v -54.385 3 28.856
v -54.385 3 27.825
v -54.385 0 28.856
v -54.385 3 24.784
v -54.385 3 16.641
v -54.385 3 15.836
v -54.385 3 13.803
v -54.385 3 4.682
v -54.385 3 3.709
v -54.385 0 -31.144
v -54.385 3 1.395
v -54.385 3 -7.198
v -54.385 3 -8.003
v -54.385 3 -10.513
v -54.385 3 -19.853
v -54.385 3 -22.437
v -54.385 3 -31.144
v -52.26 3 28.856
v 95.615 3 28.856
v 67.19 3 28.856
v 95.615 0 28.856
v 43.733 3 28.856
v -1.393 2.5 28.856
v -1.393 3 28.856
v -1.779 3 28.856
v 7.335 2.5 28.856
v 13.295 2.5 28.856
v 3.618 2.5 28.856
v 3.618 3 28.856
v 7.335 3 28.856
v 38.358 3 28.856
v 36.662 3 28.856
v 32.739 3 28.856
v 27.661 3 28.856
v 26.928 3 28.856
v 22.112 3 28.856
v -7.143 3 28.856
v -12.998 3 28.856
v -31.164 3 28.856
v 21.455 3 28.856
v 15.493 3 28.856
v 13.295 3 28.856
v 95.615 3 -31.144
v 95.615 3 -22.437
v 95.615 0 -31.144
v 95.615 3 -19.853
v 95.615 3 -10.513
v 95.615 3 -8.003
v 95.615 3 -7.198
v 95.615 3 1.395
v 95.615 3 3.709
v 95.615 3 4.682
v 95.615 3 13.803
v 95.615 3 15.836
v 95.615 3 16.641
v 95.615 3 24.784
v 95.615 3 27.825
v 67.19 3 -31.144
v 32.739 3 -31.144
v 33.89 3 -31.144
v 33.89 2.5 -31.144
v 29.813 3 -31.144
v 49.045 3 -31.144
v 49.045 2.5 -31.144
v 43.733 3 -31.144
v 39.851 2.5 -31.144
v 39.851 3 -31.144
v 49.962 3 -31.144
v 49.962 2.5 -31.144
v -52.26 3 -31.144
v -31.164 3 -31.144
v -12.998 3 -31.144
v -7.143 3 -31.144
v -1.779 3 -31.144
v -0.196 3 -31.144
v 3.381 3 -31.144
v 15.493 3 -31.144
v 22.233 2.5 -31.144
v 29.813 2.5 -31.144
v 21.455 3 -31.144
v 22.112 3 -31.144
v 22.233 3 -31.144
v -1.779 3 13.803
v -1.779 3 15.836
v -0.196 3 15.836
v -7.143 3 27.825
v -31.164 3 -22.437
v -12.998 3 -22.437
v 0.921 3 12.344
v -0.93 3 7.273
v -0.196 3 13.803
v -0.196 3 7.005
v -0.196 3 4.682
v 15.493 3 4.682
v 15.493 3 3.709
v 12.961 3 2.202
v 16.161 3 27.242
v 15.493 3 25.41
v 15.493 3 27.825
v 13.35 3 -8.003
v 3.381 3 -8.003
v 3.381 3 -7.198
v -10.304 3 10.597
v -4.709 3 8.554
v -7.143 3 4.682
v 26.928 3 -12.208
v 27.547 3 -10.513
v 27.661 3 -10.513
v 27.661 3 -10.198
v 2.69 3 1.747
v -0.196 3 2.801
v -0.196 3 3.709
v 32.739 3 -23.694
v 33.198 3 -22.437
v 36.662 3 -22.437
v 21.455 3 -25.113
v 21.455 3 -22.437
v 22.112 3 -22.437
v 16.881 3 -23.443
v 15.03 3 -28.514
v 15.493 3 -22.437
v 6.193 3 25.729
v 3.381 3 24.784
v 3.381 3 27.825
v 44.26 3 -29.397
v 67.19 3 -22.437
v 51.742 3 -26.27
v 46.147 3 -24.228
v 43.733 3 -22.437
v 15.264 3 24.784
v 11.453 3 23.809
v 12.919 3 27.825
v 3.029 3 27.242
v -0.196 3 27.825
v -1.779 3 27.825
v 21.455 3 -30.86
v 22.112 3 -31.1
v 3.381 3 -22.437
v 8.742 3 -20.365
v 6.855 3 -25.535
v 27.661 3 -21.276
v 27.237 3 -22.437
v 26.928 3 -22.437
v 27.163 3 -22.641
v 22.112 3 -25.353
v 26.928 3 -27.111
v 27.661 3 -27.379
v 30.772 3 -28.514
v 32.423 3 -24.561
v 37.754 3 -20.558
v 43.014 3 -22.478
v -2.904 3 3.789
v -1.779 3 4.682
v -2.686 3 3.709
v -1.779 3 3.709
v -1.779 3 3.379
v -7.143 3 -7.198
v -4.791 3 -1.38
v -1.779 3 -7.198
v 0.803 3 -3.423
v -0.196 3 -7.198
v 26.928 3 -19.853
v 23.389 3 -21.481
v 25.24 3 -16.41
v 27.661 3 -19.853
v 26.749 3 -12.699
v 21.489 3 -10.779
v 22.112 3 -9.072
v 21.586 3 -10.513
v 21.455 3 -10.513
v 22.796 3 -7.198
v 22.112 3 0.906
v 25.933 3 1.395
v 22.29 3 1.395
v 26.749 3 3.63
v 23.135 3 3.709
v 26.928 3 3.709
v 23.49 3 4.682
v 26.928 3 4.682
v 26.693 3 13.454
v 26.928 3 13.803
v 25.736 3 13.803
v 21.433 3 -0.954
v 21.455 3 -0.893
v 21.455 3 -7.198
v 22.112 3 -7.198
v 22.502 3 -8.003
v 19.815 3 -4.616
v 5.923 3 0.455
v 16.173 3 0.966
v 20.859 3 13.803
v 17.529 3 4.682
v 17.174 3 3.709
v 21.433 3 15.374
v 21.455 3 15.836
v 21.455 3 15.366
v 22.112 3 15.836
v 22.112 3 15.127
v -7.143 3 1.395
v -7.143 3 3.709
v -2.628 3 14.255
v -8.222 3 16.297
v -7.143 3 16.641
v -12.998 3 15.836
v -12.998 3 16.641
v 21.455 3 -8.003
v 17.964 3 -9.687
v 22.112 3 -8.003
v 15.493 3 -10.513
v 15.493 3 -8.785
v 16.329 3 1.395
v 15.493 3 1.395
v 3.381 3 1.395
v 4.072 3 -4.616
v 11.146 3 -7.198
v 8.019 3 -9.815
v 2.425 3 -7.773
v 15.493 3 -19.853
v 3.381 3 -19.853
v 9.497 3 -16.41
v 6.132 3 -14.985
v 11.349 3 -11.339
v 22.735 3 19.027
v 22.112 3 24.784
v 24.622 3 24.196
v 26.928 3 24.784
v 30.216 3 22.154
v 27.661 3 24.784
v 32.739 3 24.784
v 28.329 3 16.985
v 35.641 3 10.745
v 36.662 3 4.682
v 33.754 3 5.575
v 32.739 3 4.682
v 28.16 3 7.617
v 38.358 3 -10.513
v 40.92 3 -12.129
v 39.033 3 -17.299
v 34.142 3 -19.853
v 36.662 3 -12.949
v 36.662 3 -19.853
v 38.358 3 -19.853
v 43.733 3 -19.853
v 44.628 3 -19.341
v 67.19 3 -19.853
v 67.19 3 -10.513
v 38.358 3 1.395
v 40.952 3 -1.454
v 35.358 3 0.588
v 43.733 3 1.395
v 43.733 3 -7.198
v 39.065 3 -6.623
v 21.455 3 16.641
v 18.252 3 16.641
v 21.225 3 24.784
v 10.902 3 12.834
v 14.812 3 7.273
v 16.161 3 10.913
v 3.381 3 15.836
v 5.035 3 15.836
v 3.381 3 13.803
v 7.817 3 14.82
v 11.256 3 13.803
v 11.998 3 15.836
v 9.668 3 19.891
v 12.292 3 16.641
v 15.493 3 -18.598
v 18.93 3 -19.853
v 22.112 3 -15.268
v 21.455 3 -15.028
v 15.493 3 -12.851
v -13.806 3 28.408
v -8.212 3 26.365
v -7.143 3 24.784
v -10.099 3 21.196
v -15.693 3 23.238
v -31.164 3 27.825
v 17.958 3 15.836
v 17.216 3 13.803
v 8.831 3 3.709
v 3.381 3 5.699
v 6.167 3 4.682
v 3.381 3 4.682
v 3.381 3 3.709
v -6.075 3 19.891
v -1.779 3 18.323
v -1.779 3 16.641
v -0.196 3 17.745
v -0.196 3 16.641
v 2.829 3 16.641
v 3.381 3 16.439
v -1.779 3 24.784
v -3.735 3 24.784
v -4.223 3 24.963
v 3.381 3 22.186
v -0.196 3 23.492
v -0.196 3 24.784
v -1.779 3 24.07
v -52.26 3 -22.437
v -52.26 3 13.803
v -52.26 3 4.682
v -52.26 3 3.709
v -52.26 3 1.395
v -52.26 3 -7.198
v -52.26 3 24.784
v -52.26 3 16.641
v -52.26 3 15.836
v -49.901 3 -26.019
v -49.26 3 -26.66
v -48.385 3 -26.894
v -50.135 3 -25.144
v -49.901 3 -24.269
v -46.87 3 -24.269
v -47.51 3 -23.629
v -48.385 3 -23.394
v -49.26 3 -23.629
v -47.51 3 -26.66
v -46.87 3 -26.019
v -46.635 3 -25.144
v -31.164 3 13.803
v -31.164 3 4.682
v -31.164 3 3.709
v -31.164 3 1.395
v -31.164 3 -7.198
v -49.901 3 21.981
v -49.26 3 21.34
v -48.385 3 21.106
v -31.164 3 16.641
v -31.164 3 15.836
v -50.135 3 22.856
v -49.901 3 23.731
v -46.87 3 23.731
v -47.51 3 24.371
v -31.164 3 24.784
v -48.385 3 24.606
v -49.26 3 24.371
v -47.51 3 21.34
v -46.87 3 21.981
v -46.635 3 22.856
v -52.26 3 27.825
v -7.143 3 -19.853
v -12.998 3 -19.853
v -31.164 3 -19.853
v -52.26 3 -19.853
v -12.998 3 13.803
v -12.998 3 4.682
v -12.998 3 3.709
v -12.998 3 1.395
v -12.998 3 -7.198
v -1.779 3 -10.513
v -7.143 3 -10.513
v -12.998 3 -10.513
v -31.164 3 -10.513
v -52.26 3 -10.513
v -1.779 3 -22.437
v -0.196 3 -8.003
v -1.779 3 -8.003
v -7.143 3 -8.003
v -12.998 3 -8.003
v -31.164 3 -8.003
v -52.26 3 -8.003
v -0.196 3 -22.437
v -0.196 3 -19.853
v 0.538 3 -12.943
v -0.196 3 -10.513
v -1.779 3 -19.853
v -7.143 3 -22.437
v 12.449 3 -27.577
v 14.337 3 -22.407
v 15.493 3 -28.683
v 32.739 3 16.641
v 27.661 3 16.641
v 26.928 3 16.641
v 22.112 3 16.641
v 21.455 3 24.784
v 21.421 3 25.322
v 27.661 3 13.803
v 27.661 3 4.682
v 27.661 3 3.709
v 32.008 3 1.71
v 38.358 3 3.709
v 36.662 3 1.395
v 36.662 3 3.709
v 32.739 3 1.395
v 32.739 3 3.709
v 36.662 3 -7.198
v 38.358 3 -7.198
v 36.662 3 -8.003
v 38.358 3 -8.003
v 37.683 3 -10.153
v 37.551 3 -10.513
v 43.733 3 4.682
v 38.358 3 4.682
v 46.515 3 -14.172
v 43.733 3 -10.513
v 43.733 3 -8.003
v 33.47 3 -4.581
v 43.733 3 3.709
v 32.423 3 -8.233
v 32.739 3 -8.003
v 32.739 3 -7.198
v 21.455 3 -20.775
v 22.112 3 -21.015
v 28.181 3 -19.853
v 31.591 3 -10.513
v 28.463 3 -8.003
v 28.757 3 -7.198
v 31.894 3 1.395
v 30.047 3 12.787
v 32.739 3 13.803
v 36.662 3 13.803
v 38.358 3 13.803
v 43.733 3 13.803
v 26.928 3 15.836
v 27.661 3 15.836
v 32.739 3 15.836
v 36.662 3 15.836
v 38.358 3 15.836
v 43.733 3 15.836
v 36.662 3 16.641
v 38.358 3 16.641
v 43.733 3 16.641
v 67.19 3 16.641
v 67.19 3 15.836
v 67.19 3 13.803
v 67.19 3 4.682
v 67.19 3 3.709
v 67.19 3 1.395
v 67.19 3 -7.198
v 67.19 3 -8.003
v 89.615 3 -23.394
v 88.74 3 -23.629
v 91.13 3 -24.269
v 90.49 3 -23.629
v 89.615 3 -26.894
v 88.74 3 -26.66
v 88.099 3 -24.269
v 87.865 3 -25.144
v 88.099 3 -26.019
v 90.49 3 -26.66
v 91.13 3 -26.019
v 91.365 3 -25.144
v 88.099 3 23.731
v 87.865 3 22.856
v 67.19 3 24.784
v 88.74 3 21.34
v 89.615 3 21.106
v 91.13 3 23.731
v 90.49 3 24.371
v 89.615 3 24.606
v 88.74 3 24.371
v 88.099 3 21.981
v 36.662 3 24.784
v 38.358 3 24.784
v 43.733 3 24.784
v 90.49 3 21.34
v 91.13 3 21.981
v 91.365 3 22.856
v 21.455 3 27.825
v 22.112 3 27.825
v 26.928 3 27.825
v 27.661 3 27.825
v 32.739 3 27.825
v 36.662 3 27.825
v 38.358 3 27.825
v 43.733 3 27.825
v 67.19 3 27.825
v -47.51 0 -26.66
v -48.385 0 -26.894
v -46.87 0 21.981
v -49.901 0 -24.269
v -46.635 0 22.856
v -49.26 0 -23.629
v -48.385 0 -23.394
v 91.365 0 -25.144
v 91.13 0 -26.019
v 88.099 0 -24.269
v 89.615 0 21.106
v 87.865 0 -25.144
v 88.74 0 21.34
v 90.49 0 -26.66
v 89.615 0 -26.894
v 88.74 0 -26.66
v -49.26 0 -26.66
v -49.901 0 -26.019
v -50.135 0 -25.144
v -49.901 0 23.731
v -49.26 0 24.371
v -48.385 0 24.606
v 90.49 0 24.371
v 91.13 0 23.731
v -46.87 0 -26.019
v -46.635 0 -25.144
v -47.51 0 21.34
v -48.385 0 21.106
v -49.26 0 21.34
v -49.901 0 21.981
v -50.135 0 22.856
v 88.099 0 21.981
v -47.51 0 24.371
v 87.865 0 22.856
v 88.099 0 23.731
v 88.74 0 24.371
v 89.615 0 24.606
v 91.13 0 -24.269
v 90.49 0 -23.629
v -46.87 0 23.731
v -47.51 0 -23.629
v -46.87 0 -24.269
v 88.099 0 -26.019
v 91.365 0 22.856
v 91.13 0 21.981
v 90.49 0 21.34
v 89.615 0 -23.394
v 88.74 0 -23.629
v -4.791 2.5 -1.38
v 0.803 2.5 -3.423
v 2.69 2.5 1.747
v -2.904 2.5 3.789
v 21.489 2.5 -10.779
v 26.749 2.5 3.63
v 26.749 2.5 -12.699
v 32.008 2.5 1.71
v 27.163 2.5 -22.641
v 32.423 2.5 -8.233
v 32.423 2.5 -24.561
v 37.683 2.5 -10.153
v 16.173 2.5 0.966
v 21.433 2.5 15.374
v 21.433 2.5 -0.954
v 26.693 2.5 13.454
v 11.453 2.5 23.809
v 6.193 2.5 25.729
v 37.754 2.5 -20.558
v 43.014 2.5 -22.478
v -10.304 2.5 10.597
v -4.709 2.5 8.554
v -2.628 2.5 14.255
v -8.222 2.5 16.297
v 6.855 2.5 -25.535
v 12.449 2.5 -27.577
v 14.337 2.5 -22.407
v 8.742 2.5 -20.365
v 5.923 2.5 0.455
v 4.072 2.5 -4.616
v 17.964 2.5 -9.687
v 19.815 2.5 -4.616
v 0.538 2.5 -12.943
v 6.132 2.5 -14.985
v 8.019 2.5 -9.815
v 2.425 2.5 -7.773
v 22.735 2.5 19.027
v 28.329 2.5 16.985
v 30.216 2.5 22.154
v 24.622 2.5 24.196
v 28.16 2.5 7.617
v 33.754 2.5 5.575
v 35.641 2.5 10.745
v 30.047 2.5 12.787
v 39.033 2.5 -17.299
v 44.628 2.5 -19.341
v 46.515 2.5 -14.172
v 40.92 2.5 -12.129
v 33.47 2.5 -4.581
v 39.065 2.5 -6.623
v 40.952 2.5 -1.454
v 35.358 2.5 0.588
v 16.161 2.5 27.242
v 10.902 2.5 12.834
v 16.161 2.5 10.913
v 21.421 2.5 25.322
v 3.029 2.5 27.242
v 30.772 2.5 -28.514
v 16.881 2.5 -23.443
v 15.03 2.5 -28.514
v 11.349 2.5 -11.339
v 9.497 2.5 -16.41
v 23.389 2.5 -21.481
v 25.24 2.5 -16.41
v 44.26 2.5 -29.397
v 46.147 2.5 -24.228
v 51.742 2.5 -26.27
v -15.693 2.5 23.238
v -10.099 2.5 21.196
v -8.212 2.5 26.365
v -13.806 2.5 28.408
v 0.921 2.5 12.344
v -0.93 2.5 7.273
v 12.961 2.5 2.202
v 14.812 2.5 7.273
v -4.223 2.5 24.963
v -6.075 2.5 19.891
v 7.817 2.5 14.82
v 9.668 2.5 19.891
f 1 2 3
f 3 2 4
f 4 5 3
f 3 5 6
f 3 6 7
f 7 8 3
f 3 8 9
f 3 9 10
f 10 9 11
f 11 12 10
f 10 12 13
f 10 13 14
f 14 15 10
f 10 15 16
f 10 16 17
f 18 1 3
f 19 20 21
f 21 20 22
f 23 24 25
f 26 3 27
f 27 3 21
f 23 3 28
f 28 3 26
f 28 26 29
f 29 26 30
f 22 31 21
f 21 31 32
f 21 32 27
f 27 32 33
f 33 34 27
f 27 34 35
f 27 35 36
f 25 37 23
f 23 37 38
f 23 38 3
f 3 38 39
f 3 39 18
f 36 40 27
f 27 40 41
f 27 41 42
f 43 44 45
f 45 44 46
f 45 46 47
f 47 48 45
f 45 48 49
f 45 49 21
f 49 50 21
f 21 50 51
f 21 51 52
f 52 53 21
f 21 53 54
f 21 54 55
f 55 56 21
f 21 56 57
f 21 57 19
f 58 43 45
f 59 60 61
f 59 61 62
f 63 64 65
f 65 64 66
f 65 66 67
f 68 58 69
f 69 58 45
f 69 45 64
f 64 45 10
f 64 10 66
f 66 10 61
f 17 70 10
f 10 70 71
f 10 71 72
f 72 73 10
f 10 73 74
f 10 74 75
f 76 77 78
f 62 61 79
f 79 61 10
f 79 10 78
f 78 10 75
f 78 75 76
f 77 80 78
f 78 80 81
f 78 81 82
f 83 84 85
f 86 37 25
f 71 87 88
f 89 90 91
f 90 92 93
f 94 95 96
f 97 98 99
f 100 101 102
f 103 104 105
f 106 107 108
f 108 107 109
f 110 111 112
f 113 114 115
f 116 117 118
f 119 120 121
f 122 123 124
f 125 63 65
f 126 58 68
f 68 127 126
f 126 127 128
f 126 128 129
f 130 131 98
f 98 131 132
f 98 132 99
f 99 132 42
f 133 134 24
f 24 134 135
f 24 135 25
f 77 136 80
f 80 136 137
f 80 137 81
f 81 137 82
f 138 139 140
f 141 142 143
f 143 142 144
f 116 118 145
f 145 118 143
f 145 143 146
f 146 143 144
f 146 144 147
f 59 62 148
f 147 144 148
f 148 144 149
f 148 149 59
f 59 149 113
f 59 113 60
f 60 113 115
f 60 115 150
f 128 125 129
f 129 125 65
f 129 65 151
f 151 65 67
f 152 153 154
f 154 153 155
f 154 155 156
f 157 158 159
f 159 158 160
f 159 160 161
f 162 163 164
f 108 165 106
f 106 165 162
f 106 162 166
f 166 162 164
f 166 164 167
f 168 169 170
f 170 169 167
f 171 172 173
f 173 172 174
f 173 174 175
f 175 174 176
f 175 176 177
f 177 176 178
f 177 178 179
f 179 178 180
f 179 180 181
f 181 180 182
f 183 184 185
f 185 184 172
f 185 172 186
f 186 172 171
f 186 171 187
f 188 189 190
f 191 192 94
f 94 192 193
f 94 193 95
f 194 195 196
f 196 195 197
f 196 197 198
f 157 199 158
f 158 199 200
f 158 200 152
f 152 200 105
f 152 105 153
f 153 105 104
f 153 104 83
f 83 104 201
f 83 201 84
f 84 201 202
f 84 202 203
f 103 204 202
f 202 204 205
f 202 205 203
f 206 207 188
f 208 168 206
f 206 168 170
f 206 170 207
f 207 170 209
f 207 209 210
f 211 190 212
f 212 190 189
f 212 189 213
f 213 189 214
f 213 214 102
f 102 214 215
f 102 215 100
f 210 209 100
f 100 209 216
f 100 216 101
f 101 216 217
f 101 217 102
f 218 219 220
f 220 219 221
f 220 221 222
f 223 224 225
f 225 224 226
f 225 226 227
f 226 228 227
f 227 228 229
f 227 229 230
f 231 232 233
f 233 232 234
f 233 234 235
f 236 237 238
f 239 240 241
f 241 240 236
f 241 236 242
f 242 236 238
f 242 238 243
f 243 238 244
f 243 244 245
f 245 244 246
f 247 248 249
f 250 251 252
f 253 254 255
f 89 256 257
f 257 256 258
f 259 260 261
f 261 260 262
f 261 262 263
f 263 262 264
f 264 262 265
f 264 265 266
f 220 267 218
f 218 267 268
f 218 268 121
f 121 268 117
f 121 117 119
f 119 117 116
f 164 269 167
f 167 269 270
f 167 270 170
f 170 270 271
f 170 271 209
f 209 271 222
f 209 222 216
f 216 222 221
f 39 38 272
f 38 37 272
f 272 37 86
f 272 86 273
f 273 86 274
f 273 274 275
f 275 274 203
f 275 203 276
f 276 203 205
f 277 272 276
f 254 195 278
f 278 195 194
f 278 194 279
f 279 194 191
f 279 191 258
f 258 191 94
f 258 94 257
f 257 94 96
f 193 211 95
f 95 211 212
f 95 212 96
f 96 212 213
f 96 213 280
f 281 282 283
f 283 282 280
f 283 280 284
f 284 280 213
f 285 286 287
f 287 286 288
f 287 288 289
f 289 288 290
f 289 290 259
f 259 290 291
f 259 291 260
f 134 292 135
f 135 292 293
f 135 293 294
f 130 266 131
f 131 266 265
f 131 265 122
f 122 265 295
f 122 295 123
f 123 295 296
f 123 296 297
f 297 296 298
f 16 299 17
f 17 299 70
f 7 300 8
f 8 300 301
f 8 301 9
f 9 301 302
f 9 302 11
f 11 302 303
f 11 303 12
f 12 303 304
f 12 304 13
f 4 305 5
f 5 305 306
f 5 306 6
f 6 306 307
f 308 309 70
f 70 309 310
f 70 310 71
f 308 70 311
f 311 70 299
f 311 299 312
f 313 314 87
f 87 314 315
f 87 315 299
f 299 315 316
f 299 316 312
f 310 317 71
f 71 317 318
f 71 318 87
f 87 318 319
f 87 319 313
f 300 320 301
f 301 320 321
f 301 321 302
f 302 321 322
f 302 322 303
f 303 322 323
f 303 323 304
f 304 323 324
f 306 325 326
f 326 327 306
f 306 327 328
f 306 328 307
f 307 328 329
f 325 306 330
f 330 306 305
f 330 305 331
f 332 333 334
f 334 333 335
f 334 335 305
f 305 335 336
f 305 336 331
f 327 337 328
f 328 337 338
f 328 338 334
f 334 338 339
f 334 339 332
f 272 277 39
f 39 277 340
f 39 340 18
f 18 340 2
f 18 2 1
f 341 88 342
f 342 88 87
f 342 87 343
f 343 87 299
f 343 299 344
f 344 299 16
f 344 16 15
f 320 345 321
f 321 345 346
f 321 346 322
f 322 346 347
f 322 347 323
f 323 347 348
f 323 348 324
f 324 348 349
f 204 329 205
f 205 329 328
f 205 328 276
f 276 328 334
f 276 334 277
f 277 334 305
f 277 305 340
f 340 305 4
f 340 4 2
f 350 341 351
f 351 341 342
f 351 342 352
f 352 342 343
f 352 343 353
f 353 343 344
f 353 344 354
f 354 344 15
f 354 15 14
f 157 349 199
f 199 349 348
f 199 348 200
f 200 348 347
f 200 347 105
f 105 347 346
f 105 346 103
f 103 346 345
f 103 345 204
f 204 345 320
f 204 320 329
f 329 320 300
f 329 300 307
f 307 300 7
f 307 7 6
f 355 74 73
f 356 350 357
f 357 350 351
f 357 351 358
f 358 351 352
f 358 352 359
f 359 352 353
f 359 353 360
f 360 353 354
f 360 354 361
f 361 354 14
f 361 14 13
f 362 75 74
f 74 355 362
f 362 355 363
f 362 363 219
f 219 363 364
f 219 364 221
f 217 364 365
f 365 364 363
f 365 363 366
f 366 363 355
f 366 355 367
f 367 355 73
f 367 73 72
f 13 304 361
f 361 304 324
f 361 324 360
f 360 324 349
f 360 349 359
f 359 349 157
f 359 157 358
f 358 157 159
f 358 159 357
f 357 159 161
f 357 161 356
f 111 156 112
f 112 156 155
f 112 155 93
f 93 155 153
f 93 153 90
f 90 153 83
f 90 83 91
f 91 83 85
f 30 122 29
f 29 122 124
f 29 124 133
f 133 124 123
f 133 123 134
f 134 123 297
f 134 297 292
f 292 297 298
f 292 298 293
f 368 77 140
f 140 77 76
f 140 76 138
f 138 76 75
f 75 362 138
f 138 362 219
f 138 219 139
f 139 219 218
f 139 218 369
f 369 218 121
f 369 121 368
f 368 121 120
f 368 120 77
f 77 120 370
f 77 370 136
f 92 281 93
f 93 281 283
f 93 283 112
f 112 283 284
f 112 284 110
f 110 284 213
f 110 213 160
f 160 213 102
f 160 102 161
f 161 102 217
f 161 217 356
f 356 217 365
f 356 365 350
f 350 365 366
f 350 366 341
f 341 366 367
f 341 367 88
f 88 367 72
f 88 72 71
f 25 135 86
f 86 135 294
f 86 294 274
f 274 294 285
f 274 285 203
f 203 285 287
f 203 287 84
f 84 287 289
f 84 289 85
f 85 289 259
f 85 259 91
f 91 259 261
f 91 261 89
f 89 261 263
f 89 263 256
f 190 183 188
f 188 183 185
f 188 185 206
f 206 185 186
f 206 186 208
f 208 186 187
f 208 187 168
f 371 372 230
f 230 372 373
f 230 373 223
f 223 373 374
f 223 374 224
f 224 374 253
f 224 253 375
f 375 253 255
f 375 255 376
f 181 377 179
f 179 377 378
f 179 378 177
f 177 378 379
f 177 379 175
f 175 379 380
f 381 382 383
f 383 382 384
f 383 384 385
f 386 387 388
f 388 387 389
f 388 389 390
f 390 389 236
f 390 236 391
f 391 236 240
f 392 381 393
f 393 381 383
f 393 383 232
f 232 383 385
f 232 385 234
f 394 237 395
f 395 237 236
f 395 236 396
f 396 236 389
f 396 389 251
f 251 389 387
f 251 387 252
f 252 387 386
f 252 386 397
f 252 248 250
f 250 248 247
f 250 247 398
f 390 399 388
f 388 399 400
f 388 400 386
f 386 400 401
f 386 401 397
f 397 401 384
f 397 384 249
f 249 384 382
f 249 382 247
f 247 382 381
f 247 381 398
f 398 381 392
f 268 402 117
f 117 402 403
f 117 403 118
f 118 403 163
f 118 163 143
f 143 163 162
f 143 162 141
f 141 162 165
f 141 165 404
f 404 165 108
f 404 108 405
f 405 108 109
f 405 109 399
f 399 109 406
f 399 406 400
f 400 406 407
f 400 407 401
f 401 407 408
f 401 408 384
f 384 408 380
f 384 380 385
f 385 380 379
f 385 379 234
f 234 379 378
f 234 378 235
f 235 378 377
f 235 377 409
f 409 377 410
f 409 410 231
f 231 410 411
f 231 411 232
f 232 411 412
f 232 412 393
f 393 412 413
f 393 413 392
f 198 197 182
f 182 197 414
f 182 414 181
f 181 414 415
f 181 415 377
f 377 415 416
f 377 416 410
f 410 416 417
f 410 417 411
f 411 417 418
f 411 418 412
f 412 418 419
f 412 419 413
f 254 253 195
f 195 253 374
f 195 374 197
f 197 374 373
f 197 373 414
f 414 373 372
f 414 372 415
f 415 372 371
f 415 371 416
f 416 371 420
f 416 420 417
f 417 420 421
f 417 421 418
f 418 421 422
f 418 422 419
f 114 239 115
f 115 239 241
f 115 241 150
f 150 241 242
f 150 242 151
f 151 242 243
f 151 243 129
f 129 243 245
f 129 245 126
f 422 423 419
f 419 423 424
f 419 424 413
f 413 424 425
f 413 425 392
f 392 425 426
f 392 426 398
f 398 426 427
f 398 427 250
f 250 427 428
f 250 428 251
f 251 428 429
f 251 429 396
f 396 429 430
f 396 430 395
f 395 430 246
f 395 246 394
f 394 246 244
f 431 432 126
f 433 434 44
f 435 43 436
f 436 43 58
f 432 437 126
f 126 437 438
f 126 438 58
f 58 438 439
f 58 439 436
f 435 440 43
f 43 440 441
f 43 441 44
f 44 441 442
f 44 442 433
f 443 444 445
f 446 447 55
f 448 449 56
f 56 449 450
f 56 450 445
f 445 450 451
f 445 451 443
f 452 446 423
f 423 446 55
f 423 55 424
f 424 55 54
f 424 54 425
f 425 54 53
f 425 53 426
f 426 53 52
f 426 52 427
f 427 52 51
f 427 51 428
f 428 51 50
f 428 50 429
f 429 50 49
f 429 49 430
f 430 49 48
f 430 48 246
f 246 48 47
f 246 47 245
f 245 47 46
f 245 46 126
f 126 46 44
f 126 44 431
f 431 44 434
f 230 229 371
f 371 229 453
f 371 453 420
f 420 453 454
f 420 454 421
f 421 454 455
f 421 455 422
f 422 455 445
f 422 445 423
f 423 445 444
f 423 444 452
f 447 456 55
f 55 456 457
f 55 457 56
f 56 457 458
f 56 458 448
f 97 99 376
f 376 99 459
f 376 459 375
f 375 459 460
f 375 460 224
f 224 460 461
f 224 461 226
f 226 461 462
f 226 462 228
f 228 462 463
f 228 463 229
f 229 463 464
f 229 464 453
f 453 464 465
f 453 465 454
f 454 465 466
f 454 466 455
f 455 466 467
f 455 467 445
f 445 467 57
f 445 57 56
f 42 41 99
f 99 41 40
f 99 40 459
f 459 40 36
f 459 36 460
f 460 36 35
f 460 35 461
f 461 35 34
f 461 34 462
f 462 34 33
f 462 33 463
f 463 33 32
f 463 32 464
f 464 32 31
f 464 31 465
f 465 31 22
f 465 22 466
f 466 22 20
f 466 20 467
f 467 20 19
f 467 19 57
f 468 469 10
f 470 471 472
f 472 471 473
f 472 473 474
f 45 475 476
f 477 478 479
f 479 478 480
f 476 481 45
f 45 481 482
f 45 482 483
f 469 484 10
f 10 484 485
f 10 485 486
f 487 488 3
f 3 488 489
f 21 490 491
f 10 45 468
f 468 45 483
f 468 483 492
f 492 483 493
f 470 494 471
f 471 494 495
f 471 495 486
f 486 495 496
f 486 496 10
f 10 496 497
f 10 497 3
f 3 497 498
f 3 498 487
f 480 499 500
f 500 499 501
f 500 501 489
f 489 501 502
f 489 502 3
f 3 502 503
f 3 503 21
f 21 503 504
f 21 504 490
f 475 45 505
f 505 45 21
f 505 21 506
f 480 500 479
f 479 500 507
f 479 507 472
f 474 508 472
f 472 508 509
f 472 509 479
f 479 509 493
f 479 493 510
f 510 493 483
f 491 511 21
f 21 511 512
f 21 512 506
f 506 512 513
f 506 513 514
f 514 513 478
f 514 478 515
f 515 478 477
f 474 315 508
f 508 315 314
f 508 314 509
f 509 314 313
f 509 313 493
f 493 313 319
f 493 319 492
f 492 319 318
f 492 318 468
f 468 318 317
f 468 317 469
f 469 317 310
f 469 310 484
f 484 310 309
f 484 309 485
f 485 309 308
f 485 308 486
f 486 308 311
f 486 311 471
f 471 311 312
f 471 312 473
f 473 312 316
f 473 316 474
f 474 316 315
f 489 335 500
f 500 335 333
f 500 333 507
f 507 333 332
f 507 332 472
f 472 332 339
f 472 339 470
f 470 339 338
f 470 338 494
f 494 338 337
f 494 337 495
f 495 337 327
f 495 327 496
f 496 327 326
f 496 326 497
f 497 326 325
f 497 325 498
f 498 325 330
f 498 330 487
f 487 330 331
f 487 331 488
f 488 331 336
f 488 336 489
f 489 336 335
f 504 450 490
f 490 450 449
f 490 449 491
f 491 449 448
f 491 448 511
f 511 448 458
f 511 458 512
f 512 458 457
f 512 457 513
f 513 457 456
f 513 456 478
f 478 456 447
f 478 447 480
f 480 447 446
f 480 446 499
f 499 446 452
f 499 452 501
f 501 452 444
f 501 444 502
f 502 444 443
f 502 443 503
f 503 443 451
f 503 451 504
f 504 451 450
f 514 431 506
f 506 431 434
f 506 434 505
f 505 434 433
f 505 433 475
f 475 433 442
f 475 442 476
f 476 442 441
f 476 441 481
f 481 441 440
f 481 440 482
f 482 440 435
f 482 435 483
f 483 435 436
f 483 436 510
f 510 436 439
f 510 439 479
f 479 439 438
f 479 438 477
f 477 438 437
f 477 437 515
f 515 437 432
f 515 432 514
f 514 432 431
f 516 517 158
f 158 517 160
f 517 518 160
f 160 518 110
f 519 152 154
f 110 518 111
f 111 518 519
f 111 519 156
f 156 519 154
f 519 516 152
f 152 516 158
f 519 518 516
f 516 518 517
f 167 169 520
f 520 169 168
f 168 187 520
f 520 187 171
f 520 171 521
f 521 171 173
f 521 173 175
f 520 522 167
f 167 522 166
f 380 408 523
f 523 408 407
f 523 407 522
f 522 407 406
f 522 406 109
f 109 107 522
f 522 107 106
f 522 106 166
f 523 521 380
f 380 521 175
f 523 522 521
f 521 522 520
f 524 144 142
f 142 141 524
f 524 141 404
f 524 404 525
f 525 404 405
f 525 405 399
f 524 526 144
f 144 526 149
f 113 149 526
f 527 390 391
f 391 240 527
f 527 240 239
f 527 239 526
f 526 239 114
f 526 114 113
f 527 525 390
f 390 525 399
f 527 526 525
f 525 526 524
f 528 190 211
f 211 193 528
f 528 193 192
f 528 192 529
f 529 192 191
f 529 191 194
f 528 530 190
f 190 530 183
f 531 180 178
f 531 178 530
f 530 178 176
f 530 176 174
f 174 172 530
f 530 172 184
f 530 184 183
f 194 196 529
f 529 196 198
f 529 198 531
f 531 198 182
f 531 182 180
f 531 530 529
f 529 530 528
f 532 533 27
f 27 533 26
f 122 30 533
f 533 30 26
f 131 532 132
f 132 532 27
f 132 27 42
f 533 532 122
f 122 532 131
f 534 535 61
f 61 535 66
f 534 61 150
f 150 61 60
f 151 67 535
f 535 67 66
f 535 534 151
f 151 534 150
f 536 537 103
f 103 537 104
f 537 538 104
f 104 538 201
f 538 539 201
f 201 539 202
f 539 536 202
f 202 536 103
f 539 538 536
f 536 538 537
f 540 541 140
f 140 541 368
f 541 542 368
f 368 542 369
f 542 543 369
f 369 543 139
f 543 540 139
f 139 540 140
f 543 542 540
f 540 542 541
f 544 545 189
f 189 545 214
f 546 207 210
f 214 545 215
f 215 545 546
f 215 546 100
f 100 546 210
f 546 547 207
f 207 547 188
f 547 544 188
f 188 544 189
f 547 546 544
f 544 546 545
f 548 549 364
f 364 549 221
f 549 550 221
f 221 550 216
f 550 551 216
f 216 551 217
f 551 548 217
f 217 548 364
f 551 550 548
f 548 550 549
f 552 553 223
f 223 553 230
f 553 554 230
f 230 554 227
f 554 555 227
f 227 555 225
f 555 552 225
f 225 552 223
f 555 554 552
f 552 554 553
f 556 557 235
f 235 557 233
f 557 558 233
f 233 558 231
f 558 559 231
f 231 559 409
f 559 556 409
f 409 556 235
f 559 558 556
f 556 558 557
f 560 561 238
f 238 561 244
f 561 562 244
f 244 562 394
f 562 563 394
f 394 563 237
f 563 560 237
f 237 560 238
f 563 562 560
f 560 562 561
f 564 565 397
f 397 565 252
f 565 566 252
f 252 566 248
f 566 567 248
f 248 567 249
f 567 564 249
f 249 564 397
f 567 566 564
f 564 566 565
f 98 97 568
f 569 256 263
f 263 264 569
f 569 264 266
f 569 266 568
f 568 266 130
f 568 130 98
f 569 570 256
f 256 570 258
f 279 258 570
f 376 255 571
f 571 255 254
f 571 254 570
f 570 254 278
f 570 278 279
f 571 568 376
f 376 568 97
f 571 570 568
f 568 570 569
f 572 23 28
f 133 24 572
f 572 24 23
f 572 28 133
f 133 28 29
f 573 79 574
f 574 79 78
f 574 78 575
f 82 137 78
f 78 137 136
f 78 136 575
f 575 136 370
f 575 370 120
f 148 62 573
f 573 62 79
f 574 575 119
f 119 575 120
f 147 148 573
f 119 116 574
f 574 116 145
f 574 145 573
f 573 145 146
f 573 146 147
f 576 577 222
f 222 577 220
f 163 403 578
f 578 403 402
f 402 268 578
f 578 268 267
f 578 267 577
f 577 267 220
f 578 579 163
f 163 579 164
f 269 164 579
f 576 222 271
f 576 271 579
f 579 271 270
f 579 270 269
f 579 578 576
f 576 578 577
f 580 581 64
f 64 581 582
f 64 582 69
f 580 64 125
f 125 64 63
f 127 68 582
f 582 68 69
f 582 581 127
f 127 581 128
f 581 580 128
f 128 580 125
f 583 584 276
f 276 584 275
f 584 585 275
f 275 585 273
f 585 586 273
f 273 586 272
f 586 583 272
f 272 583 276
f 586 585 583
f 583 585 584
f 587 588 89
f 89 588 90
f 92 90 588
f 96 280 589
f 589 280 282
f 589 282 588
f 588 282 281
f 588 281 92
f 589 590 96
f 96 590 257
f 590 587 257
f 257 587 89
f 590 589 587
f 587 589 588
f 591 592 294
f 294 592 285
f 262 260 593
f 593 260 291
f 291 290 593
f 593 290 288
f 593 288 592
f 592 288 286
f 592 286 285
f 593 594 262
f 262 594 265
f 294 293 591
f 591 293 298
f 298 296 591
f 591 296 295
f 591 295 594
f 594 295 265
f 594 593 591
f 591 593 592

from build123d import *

# Parameters (mm, degrees)
SKETCH1_W           = 150
SKETCH1_H           = 60
BOSS_EXTRUDE1_DEPTH = 3
CUT_EXTRUDE1_REACH  = 102.604
SKETCH2_R           = 1.75
CUT_EXTRUDE2_DEPTH  = 0.5


with BuildPart() as part:
    # Sketch1 → Boss-Extrude1 (new body)
    with BuildSketch(Plane(origin=(0, 0, 0), x_dir=(1, 0, 0), z_dir=(0, 1, 0))):
        with Locations((20.614523463, 1.144067797)):
            Rectangle(SKETCH1_W, SKETCH1_H)
    extrude(amount=BOSS_EXTRUDE1_DEPTH)

    # Sketch2 → Cut-Extrude1 (cut, up to next)
    with BuildSketch(Plane(origin=(0, 3, 0), x_dir=(1, 0, 0), z_dir=(0, 1, 0)), mode=Mode.PRIVATE) as cut_extrude1_sk1:
        with Locations(Location((-48.385476537, 25.144067797, 0), (0, 0, 270))):
            Circle(SKETCH2_R)
    cut_extrude1_tool1 = extrude(cut_extrude1_sk1.sketch, amount=-CUT_EXTRUDE1_REACH, mode=Mode.PRIVATE) & part.part
    # Sketch2 → Cut-Extrude1 (cut, up to next)
    with BuildSketch(Plane(origin=(0, 3, 0), x_dir=(1, 0, 0), z_dir=(0, 1, 0)), mode=Mode.PRIVATE) as cut_extrude1_sk2:
        with Locations(Location((-48.385476537, -22.855932203, 0), (0, 0, 270))):
            Circle(SKETCH2_R)
    cut_extrude1_tool2 = extrude(cut_extrude1_sk2.sketch, amount=-CUT_EXTRUDE1_REACH, mode=Mode.PRIVATE) & part.part
    # Sketch2 → Cut-Extrude1 (cut, up to next)
    with BuildSketch(Plane(origin=(0, 3, 0), x_dir=(1, 0, 0), z_dir=(0, 1, 0)), mode=Mode.PRIVATE) as cut_extrude1_sk3:
        with Locations(Location((89.614523463, -22.855932203, 0), (0, 0, 270))):
            Circle(SKETCH2_R)
    cut_extrude1_tool3 = extrude(cut_extrude1_sk3.sketch, amount=-CUT_EXTRUDE1_REACH, mode=Mode.PRIVATE) & part.part
    # Sketch2 → Cut-Extrude1 (cut, up to next)
    with BuildSketch(Plane(origin=(0, 3, 0), x_dir=(1, 0, 0), z_dir=(0, 1, 0)), mode=Mode.PRIVATE) as cut_extrude1_sk4:
        with Locations(Location((89.614523463, 25.144067797, 0), (0, 0, 270))):
            Circle(SKETCH2_R)
    cut_extrude1_tool4 = extrude(cut_extrude1_sk4.sketch, amount=-CUT_EXTRUDE1_REACH, mode=Mode.PRIVATE) & part.part
    add(cut_extrude1_tool1.solids().sort_by_distance((-48.385477, 3, -25.144068))[0], mode=Mode.SUBTRACT)
    add(cut_extrude1_tool2.solids().sort_by_distance((-48.385477, 3, 22.855932))[0], mode=Mode.SUBTRACT)
    add(cut_extrude1_tool3.solids().sort_by_distance((89.614523, 3, 22.855932))[0], mode=Mode.SUBTRACT)
    add(cut_extrude1_tool4.solids().sort_by_distance((89.614523, 3, -25.144068))[0], mode=Mode.SUBTRACT)

    # Sketch4 → Cut-Extrude2 (cut)
    with BuildSketch(Plane(origin=(0, 3, 0), x_dir=(1, 0, 0), z_dir=(0, 1, 0))):
        Polygon((-4.791426937, 1.38027169), (-2.904268689, -3.78923879), (2.69009548, -1.746985365), (0.802937232, 3.422525114), align=None)
        Polygon((4.072217559, 4.615993888), (17.963708333, 9.687159037), (19.814965077, 4.615993888), (5.923474302, -0.455171261), align=None)
        Polygon((0.537631953, 12.942669892), (2.424790201, 7.773159413), (8.01915437, 9.815412837), (6.131996122, 14.984923317), align=None)
        Polygon((6.855118637, 25.534649861), (8.742276884, 20.365139381), (14.336641053, 22.407392806), (12.449482806, 27.576903285), align=None)
        Polygon((-10.303537871, -10.596668593), (-8.222494664, -16.297289982), (-2.628130495, -14.255036558), (-4.709173702, -8.554415169), align=None)
        Polygon((22.734653732, -19.026845993), (24.621811979, -24.196356472), (30.216176149, -22.154103048), (28.329017901, -16.984592568), align=None)
        Polygon((28.15962548, -7.617265398), (30.046783727, -12.786775877), (35.641147896, -10.744522452), (33.753989649, -5.575011973), align=None)
        Polygon((33.470482261, 4.581220115), (35.357640508, -0.588290364), (40.952004677, 1.453963061), (39.06484643, 6.62347354), align=None)
        Polygon((39.033241178, 17.298759053), (40.920399425, 12.129248573), (46.514763594, 14.171501998), (44.627605347, 19.341012477), align=None)
        Polygon((44.260137656, 29.397485637), (46.147295903, 24.227975157), (51.741660072, 26.270228582), (49.854501825, 31.439739061), align=None)
        Polygon((-15.693454614, -23.238088767), (-13.806296367, -28.407599247), (-8.211932198, -26.365345822), (-10.099090445, -21.195835343), align=None)
        Polygon((-0.93033458, -7.272900817), (12.961156194, -2.201735668), (14.812412937, -7.272900817), (0.920922163, -12.344065966), align=None)
        Polygon((-6.074509675, -19.891339922), (7.816981099, -14.820174773), (9.668237843, -19.891339922), (-4.223252932, -24.962505072), align=None)
        Polygon((9.497387621, 16.409742117), (23.388878396, 21.480907266), (25.240135139, 16.409742117), (11.348644365, 11.338576968), align=None)
        Polygon((15.029728795, 28.514461172), (28.921219569, 33.585626321), (30.772476312, 28.514461172), (16.880985538, 23.443296023), align=None)
        Polygon((-10.862556564, -32.312872197), (3.028934211, -27.241707048), (4.880190954, -32.312872197), (-9.011299821, -37.384037346), align=None)
        Polygon((16.161463862, -27.241707048), (21.421250331, -25.321593054), (16.161463862, -10.913410108), (10.901677392, -12.833524103), align=None)
        Polygon((11.452927675, -40.137517662), (16.712714145, -38.217403668), (11.452927675, -23.809220723), (6.193141206, -25.729334717), align=None)
        Polygon((21.432742799, -15.374475147), (26.692529268, -13.454361153), (21.432742799, 0.953821792), (16.172956329, -0.966292202), align=None)
        Polygon((26.748696994, -3.629622604), (32.008483463, -1.70950861), (26.748696994, 12.698674336), (21.488910524, 10.778560341), align=None)
        Polygon((32.423035231, 8.232679073), (37.6828217, 10.152793068), (32.423035231, 24.560976013), (27.163248761, 22.640862019), align=None)
        Polygon((37.754362659, 20.558284805), (43.014149128, 22.4783988), (37.754362659, 36.886581745), (32.494576189, 34.966467751), align=None)
    extrude(amount=-CUT_EXTRUDE2_DEPTH, mode=Mode.SUBTRACT)


solid = part.part
